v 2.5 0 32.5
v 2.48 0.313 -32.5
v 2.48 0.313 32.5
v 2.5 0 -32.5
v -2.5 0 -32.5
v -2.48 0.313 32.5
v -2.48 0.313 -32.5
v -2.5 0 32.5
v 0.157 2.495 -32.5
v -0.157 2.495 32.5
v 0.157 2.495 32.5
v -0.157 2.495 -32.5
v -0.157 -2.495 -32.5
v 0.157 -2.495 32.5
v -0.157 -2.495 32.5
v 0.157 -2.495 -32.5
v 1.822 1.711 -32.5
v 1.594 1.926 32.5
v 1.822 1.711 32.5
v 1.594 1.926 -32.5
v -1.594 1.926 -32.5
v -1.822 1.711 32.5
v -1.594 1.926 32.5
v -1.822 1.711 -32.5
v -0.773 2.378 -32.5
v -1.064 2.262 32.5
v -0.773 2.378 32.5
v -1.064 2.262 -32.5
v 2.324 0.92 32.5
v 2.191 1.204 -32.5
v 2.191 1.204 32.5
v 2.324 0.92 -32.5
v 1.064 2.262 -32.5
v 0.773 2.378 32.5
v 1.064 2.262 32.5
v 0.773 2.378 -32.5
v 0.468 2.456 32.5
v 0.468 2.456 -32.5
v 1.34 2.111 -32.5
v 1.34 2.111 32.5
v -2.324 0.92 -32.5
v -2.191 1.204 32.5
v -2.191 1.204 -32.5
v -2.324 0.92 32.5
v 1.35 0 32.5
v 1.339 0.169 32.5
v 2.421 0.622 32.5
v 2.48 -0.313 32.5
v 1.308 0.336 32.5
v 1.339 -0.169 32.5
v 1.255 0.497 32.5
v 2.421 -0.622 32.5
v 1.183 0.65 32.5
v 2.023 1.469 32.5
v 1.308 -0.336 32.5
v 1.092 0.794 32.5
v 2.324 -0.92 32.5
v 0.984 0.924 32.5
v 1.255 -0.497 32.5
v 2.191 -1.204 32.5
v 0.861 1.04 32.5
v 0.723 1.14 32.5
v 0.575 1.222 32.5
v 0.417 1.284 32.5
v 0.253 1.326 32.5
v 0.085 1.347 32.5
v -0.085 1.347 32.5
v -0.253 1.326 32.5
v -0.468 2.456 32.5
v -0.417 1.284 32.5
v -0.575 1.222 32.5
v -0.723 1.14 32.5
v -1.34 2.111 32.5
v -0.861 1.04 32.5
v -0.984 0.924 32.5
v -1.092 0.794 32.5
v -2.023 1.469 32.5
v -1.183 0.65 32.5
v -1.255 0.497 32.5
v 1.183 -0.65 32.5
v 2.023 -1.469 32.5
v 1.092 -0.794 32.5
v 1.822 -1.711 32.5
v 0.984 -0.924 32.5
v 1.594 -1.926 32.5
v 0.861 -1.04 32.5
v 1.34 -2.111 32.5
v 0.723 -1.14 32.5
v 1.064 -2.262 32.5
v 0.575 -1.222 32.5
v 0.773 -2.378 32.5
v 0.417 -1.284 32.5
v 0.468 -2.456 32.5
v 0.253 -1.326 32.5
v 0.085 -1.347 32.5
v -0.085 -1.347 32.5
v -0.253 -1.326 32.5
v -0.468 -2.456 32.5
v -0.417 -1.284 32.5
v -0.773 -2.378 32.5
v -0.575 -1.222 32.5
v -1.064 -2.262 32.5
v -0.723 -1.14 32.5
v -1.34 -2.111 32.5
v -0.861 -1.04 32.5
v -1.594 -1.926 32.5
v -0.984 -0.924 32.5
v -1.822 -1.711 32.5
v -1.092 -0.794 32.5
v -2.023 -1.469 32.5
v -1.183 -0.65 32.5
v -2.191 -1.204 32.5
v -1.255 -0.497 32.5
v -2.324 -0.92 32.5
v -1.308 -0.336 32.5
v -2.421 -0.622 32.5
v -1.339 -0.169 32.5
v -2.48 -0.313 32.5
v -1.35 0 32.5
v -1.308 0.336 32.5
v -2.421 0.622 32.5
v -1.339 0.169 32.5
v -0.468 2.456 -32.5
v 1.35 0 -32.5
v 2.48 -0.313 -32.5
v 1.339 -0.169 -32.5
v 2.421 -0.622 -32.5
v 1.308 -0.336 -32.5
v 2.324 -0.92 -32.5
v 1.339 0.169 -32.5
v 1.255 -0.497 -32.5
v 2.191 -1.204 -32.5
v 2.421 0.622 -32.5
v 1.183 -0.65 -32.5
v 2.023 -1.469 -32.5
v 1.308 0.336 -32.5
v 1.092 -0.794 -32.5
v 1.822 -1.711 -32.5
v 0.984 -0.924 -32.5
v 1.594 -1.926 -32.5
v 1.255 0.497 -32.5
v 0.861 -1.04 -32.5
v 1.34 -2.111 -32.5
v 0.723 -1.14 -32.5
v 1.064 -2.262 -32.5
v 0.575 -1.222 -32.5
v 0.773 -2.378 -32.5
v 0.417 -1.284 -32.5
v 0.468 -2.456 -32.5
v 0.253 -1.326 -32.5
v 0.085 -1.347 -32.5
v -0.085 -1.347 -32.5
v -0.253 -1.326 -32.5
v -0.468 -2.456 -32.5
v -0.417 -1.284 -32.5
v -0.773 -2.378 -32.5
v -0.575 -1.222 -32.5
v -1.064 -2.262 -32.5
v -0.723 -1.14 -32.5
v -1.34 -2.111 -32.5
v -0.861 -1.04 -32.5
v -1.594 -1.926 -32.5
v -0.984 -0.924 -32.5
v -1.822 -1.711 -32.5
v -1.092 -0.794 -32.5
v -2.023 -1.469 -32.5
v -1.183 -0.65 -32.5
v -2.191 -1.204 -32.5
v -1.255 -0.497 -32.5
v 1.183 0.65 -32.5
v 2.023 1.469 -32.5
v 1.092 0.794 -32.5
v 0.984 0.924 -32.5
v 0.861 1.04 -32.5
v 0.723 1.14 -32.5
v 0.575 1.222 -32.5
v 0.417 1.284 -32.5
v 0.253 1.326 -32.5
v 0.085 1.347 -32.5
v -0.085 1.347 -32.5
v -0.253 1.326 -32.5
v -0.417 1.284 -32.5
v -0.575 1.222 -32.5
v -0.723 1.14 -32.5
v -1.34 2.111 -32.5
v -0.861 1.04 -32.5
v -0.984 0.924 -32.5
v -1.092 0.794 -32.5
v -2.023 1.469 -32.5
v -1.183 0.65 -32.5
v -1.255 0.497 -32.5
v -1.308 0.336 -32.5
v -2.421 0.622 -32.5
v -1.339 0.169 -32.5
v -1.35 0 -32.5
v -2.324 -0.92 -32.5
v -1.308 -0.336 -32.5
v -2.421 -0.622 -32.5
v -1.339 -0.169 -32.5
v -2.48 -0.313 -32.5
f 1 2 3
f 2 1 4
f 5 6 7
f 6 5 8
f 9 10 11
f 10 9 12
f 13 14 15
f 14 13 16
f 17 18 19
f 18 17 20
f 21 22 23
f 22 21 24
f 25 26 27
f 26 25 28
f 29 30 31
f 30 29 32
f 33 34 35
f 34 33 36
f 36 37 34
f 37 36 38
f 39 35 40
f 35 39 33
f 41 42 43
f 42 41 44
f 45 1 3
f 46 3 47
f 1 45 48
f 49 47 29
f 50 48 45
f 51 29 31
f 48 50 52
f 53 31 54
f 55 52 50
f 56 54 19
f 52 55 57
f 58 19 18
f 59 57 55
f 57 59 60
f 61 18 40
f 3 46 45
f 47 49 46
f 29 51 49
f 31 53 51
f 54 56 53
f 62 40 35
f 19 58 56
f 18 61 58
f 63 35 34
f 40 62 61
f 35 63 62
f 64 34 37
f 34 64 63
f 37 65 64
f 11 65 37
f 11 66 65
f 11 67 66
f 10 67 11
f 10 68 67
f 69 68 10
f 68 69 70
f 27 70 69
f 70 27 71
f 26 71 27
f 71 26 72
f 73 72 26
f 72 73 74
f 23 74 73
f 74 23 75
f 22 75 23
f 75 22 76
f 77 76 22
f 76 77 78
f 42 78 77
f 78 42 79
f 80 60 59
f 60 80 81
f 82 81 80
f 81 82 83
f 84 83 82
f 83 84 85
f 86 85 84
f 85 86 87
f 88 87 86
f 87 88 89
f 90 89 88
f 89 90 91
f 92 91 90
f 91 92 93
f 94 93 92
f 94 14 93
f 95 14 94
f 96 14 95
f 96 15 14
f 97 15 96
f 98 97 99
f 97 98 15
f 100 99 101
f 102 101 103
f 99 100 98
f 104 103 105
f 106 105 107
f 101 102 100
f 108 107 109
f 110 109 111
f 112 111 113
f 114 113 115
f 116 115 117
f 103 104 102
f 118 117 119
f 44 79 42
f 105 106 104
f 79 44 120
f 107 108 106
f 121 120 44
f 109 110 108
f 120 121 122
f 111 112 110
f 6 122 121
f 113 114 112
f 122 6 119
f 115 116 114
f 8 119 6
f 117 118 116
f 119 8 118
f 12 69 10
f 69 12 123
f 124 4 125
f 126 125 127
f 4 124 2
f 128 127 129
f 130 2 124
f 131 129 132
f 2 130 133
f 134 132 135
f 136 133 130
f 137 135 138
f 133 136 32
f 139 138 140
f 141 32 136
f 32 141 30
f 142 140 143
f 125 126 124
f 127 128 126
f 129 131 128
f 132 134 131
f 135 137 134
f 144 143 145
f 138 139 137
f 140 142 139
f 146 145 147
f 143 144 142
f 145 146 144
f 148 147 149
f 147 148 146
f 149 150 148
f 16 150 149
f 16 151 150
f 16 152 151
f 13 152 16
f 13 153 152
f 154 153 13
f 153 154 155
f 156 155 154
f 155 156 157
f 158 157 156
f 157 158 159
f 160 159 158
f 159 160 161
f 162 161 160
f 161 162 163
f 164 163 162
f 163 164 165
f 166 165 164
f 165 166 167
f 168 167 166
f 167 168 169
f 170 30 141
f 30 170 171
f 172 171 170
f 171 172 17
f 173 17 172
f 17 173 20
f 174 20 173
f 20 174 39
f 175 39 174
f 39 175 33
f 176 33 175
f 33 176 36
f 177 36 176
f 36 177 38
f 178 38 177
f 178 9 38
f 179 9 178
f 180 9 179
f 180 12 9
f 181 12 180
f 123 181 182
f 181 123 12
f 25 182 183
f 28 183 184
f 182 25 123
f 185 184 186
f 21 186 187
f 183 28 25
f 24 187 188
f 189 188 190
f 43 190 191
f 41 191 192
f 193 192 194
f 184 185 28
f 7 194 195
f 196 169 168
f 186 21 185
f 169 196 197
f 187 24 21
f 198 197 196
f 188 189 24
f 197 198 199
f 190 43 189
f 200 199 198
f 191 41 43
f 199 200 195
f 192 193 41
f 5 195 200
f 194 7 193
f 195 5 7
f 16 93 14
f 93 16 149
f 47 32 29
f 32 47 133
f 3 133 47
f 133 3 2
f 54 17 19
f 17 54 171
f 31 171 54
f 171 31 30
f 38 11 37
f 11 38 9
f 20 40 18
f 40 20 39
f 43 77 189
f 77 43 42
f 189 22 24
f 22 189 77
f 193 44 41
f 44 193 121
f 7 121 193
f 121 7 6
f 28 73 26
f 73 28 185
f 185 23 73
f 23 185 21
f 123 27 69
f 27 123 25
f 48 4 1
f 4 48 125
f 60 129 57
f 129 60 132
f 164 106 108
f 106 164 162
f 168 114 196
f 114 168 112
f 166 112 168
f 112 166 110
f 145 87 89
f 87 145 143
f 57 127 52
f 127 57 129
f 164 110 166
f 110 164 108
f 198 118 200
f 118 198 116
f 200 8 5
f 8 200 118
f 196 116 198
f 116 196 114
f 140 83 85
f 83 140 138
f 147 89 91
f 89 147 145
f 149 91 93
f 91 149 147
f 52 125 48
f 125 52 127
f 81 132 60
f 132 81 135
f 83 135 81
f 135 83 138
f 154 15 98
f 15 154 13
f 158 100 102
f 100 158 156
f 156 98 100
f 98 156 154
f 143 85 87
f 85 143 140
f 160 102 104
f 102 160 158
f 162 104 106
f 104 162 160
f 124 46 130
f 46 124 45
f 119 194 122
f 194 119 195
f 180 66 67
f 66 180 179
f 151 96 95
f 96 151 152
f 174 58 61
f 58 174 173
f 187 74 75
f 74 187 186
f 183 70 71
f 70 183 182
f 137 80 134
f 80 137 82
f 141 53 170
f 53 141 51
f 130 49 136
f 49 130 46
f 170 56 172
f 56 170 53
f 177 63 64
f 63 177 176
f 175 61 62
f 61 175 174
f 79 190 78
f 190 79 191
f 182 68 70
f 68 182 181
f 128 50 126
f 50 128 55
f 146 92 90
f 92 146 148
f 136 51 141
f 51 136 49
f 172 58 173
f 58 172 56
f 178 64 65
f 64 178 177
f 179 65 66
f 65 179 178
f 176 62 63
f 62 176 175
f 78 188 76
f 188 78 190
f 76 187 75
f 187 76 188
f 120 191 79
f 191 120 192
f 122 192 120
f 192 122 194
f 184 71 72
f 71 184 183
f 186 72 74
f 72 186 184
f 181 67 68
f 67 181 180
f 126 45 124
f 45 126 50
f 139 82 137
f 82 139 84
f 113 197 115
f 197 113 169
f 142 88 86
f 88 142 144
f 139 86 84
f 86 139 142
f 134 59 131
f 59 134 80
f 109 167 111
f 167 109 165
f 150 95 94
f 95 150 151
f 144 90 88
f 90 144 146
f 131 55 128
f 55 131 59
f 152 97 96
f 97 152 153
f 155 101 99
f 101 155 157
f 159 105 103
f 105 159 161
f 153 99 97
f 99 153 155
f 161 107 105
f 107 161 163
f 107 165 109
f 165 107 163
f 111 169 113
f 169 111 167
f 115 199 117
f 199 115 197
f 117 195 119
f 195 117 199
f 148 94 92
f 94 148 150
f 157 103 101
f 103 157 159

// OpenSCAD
$fn = 50;


difference() {
	union() {
		translate(v = [0, 0, -32.5000000000]) {
			cylinder(h = 65, r = 2.5000000000);
		}
	}
	union() {
		translate(v = [0, 0, -100.0000000000]) {
			cylinder(h = 200, r = 1.3500000000);
		}
	}
}
